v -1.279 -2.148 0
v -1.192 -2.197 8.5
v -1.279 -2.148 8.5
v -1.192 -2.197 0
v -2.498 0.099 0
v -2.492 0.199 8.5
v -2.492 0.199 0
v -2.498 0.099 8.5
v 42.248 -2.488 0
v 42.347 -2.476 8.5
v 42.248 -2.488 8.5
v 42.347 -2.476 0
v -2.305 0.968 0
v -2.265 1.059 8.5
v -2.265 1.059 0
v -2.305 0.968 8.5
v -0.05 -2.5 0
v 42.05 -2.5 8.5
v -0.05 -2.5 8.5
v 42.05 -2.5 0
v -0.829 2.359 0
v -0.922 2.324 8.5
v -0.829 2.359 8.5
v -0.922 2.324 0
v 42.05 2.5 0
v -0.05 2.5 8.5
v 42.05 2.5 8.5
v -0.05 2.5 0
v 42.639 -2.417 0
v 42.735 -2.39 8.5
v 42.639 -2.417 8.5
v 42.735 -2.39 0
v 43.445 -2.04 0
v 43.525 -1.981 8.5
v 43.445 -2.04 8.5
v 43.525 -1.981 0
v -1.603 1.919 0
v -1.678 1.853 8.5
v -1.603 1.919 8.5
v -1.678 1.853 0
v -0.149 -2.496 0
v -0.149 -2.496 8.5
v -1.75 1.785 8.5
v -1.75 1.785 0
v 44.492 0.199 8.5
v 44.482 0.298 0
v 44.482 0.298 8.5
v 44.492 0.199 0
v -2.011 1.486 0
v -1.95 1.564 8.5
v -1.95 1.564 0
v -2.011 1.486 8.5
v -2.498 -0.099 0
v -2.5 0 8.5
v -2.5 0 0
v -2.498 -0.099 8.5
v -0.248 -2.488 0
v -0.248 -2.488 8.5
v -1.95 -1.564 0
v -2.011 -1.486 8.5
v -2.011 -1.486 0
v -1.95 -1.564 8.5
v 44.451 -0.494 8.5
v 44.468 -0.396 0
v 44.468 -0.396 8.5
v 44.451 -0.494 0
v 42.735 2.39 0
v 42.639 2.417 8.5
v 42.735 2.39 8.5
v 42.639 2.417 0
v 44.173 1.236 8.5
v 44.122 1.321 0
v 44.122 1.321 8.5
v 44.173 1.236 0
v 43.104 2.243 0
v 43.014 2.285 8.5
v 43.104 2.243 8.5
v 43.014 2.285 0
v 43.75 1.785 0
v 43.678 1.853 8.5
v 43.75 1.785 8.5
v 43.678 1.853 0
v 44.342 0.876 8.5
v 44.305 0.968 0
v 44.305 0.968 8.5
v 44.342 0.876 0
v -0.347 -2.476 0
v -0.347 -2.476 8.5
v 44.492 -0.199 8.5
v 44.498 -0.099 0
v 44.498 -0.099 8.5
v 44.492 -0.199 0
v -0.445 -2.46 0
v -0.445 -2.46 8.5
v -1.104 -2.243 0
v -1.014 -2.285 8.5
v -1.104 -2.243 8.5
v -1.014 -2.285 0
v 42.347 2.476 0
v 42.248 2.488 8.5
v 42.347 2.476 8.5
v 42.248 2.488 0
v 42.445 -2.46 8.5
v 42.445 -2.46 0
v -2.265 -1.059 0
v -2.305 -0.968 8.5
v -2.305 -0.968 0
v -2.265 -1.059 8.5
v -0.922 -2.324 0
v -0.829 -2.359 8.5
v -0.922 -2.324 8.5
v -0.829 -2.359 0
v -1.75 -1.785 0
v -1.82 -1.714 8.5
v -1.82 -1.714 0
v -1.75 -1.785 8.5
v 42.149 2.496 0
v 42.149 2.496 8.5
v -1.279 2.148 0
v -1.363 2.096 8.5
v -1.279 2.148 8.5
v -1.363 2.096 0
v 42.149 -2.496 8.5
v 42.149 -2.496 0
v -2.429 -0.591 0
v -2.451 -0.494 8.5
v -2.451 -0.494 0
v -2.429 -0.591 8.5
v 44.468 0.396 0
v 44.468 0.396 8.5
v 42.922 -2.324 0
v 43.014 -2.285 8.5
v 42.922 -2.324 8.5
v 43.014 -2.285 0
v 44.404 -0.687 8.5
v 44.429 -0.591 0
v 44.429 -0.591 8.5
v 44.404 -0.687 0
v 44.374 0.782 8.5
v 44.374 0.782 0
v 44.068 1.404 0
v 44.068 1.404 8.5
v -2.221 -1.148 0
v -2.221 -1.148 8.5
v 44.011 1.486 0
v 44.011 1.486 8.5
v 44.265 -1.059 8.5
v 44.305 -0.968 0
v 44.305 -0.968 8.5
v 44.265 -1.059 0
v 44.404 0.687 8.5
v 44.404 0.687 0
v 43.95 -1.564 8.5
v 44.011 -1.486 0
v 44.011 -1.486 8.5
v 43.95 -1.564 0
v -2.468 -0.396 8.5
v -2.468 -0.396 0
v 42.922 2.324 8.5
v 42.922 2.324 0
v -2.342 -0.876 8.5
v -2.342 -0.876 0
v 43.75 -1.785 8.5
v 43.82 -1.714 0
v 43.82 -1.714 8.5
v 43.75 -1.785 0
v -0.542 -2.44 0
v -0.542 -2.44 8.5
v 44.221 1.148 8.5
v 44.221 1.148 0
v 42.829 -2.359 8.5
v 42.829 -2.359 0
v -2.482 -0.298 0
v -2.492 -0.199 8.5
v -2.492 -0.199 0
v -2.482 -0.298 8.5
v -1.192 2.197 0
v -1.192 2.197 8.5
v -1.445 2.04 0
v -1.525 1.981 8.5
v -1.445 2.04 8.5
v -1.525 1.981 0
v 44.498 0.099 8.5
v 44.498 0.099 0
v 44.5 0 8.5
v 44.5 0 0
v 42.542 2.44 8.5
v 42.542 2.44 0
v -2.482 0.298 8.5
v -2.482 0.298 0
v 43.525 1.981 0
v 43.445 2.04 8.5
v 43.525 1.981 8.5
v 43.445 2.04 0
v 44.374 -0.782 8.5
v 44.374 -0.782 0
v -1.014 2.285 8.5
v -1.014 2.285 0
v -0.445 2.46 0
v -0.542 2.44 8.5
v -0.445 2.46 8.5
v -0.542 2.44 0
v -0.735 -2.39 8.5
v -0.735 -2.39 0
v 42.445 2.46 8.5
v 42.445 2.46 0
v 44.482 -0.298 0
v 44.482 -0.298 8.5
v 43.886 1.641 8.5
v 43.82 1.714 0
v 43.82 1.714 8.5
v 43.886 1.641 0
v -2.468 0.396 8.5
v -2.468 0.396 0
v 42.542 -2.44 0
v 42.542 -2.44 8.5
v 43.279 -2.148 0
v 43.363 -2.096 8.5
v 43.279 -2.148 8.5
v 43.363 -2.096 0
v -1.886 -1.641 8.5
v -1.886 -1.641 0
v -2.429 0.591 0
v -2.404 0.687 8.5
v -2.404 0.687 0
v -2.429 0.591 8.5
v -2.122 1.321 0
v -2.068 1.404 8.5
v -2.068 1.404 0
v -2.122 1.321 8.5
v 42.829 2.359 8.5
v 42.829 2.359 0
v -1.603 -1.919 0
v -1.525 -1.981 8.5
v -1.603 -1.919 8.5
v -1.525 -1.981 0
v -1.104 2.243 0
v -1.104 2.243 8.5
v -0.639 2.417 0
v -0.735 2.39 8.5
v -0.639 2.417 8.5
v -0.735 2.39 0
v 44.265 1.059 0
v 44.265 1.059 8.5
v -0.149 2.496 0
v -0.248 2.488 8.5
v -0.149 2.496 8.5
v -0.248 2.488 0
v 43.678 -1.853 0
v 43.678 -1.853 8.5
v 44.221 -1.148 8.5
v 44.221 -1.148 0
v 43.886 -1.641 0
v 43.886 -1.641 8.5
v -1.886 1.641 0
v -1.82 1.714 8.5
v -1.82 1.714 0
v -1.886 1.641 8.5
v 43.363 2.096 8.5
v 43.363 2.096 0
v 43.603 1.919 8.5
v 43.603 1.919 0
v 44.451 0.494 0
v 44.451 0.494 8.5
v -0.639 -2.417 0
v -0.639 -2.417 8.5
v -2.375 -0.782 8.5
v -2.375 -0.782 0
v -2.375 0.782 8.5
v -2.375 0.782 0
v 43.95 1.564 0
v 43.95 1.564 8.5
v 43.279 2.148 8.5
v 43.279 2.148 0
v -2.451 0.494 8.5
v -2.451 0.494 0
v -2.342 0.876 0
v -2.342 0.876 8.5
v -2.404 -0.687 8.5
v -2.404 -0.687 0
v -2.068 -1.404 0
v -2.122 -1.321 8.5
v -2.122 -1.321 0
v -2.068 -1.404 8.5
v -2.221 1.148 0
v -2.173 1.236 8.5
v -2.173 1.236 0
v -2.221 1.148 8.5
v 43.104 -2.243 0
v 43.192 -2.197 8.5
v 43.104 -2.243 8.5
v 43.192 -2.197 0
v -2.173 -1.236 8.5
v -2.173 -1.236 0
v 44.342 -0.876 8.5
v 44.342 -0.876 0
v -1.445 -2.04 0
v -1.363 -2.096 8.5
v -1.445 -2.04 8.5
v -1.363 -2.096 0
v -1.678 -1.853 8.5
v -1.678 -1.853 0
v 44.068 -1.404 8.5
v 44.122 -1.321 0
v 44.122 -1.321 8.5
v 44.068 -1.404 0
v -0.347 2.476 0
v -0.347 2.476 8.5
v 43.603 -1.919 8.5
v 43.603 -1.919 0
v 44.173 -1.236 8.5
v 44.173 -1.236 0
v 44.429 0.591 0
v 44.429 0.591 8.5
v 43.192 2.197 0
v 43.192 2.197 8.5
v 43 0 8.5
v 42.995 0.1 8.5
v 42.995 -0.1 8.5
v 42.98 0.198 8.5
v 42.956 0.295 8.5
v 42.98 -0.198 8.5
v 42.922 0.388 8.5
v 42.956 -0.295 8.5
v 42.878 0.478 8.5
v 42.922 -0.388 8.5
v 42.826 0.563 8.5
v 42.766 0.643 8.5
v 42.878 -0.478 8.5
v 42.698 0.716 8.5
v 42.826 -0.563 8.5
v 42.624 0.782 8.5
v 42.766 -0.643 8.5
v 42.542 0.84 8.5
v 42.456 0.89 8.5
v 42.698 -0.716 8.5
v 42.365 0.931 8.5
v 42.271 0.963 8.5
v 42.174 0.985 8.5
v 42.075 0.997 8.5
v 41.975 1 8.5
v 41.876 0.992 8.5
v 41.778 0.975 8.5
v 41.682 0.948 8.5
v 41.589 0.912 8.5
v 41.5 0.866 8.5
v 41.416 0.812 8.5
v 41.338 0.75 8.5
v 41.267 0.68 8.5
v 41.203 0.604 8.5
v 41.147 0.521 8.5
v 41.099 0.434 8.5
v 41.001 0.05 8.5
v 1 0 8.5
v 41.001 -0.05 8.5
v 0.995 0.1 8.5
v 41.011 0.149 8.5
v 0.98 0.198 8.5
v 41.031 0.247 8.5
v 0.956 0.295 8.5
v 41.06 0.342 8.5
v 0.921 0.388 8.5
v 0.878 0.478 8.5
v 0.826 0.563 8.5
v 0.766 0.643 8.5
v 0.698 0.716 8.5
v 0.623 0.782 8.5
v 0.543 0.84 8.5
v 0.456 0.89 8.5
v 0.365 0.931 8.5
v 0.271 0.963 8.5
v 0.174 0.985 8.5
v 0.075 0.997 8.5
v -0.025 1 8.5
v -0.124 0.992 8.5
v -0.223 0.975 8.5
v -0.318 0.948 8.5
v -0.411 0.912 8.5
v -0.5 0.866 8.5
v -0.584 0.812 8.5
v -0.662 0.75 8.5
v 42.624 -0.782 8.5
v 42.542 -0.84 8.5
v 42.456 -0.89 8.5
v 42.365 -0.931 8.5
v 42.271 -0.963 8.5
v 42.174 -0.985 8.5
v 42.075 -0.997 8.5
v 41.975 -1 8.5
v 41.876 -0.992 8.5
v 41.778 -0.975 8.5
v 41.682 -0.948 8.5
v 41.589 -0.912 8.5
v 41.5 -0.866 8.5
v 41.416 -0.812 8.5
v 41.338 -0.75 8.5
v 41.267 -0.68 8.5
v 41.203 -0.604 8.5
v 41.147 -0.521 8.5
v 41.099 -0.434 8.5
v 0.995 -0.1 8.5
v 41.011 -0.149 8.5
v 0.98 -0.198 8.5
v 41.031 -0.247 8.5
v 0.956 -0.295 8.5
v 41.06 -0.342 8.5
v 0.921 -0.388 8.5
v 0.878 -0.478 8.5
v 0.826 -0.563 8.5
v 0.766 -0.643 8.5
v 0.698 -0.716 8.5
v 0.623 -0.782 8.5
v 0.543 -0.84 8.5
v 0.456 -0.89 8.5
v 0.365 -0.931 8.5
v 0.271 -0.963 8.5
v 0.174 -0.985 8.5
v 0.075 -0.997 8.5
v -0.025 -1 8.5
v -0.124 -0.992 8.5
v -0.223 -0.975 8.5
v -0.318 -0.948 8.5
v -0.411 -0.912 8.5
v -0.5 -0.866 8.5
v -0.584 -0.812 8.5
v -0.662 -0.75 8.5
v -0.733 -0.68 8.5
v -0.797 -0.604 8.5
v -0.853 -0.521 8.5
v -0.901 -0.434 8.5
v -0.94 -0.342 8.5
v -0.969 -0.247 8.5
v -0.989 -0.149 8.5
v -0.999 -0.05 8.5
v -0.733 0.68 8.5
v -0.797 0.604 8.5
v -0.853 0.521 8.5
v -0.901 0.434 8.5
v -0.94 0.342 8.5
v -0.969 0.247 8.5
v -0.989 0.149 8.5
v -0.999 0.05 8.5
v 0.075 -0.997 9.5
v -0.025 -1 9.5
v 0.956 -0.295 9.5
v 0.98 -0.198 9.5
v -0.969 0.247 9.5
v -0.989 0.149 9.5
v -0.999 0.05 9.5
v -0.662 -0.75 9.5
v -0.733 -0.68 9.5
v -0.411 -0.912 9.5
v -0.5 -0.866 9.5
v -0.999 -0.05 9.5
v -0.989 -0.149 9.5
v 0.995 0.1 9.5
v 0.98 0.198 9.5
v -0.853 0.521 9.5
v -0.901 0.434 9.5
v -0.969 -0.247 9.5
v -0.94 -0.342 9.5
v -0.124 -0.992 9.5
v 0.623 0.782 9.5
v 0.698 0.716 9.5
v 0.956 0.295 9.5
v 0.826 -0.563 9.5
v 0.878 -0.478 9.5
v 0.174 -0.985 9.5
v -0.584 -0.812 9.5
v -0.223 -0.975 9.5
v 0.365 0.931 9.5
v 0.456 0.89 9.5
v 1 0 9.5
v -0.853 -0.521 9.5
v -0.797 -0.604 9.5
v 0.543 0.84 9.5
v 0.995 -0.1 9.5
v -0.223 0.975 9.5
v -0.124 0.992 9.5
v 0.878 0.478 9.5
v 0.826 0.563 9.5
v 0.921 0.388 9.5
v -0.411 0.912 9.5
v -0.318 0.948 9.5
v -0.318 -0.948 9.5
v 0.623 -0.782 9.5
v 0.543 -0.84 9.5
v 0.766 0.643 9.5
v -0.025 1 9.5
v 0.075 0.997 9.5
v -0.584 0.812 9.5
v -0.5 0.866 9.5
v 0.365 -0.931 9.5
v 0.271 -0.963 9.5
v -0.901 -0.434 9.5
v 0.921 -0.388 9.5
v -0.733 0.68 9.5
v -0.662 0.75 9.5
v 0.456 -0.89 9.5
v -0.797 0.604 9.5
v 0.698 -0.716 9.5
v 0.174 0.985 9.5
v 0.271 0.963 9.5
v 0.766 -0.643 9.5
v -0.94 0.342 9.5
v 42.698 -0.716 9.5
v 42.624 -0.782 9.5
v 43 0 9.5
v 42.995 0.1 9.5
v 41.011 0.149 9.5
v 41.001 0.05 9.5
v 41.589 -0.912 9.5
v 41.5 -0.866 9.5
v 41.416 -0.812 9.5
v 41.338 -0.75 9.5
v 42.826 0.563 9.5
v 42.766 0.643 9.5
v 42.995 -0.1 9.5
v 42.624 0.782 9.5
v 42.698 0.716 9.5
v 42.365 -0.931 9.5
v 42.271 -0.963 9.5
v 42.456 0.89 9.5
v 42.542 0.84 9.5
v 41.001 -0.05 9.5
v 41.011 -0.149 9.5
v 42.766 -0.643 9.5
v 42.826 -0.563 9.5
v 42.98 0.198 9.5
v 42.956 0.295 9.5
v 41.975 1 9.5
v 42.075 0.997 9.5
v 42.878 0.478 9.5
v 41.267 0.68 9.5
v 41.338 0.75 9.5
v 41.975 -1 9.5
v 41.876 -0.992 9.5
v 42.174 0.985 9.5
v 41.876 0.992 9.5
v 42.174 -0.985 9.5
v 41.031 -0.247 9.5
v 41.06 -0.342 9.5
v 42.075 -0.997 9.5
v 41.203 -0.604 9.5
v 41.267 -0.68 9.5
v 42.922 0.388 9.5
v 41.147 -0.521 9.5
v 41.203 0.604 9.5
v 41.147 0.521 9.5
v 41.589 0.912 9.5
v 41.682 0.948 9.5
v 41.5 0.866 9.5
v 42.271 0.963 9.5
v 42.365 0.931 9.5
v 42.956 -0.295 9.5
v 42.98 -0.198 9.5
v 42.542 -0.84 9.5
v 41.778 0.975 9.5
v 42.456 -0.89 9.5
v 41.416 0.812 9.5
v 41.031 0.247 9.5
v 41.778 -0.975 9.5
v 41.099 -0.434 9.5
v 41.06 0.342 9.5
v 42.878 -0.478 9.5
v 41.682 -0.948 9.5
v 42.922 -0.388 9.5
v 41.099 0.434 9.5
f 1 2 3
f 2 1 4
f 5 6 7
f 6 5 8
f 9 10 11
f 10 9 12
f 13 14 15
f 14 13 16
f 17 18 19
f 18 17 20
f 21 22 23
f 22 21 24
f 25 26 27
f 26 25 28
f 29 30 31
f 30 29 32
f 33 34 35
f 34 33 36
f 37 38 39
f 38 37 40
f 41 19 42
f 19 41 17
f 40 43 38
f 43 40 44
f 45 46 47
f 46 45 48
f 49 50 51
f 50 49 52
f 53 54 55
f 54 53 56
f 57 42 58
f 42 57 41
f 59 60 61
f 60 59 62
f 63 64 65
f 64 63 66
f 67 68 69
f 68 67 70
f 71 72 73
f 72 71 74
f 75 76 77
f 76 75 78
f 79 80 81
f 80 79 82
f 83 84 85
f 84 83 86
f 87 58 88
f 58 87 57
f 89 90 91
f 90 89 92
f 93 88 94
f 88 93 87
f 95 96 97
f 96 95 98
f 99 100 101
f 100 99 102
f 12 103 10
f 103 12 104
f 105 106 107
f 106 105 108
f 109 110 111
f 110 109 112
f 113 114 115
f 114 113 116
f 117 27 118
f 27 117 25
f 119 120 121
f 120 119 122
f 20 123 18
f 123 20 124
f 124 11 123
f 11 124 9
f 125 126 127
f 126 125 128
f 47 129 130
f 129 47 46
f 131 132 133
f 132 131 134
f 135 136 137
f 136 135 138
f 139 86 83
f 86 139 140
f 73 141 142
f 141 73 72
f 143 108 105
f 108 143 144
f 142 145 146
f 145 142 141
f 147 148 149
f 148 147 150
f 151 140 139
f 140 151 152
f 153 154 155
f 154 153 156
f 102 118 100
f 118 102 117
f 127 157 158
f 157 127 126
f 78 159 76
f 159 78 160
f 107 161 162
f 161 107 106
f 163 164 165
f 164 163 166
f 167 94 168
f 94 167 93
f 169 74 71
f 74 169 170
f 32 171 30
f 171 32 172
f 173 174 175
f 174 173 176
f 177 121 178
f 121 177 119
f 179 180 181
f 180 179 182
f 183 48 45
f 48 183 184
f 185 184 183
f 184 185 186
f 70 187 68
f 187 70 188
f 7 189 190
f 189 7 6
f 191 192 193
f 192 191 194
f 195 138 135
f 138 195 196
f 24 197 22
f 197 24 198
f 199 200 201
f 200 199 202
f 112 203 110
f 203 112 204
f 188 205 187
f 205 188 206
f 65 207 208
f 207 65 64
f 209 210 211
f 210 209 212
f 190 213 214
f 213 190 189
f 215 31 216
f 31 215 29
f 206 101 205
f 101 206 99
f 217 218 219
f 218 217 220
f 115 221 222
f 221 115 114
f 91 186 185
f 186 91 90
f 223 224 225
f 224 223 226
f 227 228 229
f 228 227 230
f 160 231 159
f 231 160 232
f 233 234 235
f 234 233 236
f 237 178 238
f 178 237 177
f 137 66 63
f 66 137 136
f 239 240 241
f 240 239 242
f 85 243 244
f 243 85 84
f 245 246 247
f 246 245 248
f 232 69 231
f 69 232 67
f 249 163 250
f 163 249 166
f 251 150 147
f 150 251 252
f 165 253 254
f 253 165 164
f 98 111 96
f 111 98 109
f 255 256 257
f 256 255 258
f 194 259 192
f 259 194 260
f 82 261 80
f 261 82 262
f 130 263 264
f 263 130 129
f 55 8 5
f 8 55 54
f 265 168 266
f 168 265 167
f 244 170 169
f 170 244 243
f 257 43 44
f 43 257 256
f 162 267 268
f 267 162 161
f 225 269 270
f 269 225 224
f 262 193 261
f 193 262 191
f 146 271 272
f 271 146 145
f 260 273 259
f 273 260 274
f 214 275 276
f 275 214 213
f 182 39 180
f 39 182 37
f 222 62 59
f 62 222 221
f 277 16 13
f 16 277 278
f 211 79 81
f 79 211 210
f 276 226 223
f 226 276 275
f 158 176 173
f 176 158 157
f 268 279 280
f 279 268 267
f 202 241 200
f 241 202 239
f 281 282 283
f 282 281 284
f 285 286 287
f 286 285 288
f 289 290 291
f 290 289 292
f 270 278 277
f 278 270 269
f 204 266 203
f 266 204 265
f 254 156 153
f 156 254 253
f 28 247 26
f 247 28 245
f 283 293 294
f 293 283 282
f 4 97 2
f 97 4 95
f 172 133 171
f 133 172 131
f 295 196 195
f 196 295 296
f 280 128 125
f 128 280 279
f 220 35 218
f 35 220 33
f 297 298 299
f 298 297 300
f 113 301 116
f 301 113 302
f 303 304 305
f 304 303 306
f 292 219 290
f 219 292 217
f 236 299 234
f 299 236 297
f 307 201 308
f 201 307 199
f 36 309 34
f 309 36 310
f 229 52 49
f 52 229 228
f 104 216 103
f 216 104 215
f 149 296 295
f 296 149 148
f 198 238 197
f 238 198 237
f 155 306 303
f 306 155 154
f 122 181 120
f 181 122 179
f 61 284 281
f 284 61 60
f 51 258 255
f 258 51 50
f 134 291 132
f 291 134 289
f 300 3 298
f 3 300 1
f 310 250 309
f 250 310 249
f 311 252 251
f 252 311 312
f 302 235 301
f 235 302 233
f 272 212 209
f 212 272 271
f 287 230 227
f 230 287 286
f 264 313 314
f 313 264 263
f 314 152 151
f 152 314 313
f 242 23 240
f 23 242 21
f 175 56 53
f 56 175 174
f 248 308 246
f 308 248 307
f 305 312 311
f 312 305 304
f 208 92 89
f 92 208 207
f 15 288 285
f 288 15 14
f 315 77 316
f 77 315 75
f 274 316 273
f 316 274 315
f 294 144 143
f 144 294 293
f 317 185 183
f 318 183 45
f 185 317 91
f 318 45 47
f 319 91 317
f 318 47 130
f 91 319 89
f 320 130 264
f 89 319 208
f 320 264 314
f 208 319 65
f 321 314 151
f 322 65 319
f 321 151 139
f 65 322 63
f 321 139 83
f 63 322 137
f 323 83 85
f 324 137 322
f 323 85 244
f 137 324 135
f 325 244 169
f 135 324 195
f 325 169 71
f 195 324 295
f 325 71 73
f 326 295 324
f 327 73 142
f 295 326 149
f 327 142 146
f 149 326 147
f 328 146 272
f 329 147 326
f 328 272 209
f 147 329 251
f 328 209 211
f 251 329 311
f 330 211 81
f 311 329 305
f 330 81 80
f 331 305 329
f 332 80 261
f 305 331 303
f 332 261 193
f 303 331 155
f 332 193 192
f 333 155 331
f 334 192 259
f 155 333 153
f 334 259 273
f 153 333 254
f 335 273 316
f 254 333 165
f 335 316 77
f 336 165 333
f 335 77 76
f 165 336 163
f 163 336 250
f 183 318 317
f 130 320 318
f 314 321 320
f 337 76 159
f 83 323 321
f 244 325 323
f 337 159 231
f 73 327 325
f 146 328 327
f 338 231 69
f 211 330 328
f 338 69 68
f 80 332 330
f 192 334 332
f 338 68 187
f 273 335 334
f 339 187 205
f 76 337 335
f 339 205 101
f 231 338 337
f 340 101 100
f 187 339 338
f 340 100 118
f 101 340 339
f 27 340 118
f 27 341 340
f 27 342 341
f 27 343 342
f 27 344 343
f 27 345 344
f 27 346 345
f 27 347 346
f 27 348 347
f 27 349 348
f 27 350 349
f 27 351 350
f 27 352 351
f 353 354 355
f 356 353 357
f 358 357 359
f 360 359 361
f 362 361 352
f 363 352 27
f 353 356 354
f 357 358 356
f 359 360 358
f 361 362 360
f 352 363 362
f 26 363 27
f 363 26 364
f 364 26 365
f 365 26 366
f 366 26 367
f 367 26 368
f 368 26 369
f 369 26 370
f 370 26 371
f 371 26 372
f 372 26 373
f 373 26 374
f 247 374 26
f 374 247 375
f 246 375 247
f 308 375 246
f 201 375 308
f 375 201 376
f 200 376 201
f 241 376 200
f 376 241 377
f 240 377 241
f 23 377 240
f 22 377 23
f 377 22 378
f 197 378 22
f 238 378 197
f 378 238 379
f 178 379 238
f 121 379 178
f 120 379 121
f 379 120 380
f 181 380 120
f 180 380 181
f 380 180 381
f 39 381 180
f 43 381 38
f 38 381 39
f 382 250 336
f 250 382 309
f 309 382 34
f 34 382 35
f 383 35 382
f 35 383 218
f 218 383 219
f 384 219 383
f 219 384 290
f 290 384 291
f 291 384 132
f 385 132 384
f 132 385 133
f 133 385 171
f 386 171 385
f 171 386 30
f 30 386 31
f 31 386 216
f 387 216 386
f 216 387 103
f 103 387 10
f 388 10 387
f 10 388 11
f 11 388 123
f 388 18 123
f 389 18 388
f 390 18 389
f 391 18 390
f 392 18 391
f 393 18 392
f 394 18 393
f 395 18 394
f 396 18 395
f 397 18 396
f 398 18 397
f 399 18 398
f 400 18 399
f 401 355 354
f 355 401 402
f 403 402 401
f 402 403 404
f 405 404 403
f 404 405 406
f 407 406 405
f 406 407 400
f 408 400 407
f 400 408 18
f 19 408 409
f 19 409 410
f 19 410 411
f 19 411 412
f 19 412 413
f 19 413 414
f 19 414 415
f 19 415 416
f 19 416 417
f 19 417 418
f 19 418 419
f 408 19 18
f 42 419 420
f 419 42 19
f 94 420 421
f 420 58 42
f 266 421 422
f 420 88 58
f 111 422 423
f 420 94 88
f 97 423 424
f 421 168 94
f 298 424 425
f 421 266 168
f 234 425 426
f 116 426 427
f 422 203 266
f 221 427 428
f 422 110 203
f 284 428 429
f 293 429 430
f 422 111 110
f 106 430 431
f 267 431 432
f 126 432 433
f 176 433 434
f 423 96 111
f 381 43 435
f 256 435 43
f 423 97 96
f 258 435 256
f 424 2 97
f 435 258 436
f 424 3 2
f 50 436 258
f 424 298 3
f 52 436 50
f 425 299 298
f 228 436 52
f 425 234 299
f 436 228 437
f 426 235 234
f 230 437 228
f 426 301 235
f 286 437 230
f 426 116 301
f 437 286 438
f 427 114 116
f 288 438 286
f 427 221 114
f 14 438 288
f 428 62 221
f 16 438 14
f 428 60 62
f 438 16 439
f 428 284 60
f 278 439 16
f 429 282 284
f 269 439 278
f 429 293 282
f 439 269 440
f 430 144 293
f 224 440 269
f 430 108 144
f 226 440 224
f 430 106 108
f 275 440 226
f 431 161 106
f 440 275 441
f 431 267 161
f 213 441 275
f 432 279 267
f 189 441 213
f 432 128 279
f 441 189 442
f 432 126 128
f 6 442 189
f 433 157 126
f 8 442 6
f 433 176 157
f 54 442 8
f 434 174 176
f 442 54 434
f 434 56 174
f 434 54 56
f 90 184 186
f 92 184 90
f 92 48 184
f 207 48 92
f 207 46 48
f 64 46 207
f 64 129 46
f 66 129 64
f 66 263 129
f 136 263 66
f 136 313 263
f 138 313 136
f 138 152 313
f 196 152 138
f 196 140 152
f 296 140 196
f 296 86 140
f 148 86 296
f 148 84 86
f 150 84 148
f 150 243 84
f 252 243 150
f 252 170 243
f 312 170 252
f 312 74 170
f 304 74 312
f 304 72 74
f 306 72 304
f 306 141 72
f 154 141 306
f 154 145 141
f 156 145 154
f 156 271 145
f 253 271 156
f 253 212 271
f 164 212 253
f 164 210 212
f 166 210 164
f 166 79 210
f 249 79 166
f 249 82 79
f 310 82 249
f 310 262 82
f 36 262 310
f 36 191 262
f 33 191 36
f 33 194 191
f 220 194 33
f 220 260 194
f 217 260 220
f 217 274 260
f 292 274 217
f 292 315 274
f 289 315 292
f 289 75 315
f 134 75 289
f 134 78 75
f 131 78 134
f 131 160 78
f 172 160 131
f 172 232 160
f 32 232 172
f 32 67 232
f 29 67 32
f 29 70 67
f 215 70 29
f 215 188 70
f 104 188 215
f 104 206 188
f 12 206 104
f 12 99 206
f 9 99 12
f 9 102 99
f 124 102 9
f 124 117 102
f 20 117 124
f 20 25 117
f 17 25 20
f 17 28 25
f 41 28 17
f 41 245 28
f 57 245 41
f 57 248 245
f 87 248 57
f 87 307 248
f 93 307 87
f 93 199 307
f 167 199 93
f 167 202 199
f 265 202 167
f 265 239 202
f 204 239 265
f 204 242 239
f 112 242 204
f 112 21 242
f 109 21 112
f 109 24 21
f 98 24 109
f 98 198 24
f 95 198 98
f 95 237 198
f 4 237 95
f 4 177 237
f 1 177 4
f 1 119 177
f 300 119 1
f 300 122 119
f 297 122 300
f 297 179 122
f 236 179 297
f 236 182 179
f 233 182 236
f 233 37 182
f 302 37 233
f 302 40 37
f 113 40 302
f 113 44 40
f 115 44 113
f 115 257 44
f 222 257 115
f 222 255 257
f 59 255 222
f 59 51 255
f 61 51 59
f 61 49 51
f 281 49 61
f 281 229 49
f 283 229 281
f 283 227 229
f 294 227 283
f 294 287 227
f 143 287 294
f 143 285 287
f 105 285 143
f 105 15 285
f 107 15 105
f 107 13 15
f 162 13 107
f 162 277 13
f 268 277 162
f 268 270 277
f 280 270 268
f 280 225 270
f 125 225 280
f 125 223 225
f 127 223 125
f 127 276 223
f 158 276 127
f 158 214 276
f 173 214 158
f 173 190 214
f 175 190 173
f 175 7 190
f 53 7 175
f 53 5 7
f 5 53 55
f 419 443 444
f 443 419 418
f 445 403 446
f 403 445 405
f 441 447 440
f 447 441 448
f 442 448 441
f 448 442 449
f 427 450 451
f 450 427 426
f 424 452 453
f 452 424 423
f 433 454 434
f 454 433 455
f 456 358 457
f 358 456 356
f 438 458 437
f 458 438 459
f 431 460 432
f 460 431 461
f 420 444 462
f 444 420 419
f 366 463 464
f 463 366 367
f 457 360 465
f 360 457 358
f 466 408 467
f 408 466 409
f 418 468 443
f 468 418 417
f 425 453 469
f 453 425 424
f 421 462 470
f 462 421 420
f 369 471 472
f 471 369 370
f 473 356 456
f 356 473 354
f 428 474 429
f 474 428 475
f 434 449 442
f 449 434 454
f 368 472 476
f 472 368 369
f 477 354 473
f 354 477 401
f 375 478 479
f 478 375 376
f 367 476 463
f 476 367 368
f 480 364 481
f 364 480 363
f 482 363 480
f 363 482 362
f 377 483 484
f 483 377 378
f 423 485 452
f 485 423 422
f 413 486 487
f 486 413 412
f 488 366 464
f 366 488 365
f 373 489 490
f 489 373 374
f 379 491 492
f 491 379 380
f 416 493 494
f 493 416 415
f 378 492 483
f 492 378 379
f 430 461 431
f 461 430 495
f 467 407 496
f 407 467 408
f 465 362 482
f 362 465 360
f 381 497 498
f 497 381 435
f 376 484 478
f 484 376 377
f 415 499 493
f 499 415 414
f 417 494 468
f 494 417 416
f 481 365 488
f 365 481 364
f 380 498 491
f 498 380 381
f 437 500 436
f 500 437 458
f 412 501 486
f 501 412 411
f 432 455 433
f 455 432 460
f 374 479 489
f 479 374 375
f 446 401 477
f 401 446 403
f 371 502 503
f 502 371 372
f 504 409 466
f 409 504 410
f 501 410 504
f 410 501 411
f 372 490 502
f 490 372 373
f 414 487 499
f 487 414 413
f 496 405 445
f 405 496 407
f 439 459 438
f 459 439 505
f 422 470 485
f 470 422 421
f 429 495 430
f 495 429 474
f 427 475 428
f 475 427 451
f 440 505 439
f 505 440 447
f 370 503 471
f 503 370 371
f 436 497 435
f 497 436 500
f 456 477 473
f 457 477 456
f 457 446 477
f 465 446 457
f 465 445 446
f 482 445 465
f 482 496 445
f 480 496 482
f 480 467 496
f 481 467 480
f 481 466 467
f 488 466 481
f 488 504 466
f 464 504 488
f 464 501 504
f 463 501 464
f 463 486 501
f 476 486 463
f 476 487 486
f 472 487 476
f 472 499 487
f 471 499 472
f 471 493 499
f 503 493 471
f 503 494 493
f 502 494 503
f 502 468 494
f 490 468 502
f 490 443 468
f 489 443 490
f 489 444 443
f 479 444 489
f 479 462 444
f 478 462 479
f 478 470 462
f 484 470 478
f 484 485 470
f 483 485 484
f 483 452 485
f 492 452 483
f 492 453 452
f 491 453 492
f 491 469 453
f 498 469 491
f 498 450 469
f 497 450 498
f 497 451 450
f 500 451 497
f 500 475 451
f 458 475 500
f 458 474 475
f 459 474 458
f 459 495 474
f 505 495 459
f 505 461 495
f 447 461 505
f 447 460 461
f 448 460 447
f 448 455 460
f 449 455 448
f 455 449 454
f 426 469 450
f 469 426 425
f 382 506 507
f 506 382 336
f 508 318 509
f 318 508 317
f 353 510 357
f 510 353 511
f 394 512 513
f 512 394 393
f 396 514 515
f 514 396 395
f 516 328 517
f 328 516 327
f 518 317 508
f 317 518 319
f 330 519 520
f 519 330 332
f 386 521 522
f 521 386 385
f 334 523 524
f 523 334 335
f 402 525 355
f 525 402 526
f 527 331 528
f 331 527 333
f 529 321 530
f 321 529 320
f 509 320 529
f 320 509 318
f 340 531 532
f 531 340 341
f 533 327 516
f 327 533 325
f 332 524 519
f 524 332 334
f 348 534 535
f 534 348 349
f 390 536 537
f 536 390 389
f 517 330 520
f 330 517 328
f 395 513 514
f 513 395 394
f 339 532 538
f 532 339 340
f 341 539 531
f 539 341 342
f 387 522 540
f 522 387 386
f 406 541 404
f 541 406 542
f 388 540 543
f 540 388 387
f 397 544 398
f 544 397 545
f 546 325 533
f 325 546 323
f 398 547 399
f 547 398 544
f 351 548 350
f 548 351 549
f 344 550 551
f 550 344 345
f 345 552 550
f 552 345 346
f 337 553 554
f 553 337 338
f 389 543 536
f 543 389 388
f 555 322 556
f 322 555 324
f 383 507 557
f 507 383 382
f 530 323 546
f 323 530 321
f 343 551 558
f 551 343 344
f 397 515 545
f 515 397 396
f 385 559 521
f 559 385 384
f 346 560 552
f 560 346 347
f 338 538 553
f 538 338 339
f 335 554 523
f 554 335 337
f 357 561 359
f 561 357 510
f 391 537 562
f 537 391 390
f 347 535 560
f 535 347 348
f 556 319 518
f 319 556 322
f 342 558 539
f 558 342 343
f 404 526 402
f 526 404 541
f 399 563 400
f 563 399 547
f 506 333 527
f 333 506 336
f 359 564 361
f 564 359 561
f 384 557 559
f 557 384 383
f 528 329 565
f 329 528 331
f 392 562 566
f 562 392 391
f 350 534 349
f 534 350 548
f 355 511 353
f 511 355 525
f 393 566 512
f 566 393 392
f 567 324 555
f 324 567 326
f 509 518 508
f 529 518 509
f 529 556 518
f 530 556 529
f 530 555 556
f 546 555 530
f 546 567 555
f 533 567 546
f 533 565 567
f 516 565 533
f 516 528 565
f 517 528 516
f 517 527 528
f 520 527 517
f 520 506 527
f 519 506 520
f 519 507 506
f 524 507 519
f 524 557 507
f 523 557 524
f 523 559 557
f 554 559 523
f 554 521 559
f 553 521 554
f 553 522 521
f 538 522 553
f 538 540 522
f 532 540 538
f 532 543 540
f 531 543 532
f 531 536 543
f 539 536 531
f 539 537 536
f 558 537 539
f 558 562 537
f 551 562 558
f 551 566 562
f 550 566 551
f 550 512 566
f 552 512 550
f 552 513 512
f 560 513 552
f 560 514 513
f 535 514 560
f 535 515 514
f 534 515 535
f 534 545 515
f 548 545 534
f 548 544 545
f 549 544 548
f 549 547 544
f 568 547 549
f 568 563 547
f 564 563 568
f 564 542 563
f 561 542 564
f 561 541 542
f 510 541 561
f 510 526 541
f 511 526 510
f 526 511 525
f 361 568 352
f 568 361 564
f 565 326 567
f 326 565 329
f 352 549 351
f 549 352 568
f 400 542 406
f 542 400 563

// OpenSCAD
// make the curves smooth
$fs = 0.1;
$fa = 0.1;

// dimensions of the bottom block (length is inferred from pitch below)
height = 8.5;
width = 5.0;

// pin dimensions
pin_diameter = 2.0;
pin_height = 1.0;

// centre-to-centre distance between the two pins
pitch = 42.0;

hull() {
  cylinder(r = width / 2, h = height);

  translate([pitch, 0, 0])
    cylinder(r = width / 2, h = height);
}

cylinder(r = pin_diameter / 2, h = height + pin_height);

translate([pitch, 0, 0])
  cylinder(r = pin_diameter / 2, h = height + pin_height);
